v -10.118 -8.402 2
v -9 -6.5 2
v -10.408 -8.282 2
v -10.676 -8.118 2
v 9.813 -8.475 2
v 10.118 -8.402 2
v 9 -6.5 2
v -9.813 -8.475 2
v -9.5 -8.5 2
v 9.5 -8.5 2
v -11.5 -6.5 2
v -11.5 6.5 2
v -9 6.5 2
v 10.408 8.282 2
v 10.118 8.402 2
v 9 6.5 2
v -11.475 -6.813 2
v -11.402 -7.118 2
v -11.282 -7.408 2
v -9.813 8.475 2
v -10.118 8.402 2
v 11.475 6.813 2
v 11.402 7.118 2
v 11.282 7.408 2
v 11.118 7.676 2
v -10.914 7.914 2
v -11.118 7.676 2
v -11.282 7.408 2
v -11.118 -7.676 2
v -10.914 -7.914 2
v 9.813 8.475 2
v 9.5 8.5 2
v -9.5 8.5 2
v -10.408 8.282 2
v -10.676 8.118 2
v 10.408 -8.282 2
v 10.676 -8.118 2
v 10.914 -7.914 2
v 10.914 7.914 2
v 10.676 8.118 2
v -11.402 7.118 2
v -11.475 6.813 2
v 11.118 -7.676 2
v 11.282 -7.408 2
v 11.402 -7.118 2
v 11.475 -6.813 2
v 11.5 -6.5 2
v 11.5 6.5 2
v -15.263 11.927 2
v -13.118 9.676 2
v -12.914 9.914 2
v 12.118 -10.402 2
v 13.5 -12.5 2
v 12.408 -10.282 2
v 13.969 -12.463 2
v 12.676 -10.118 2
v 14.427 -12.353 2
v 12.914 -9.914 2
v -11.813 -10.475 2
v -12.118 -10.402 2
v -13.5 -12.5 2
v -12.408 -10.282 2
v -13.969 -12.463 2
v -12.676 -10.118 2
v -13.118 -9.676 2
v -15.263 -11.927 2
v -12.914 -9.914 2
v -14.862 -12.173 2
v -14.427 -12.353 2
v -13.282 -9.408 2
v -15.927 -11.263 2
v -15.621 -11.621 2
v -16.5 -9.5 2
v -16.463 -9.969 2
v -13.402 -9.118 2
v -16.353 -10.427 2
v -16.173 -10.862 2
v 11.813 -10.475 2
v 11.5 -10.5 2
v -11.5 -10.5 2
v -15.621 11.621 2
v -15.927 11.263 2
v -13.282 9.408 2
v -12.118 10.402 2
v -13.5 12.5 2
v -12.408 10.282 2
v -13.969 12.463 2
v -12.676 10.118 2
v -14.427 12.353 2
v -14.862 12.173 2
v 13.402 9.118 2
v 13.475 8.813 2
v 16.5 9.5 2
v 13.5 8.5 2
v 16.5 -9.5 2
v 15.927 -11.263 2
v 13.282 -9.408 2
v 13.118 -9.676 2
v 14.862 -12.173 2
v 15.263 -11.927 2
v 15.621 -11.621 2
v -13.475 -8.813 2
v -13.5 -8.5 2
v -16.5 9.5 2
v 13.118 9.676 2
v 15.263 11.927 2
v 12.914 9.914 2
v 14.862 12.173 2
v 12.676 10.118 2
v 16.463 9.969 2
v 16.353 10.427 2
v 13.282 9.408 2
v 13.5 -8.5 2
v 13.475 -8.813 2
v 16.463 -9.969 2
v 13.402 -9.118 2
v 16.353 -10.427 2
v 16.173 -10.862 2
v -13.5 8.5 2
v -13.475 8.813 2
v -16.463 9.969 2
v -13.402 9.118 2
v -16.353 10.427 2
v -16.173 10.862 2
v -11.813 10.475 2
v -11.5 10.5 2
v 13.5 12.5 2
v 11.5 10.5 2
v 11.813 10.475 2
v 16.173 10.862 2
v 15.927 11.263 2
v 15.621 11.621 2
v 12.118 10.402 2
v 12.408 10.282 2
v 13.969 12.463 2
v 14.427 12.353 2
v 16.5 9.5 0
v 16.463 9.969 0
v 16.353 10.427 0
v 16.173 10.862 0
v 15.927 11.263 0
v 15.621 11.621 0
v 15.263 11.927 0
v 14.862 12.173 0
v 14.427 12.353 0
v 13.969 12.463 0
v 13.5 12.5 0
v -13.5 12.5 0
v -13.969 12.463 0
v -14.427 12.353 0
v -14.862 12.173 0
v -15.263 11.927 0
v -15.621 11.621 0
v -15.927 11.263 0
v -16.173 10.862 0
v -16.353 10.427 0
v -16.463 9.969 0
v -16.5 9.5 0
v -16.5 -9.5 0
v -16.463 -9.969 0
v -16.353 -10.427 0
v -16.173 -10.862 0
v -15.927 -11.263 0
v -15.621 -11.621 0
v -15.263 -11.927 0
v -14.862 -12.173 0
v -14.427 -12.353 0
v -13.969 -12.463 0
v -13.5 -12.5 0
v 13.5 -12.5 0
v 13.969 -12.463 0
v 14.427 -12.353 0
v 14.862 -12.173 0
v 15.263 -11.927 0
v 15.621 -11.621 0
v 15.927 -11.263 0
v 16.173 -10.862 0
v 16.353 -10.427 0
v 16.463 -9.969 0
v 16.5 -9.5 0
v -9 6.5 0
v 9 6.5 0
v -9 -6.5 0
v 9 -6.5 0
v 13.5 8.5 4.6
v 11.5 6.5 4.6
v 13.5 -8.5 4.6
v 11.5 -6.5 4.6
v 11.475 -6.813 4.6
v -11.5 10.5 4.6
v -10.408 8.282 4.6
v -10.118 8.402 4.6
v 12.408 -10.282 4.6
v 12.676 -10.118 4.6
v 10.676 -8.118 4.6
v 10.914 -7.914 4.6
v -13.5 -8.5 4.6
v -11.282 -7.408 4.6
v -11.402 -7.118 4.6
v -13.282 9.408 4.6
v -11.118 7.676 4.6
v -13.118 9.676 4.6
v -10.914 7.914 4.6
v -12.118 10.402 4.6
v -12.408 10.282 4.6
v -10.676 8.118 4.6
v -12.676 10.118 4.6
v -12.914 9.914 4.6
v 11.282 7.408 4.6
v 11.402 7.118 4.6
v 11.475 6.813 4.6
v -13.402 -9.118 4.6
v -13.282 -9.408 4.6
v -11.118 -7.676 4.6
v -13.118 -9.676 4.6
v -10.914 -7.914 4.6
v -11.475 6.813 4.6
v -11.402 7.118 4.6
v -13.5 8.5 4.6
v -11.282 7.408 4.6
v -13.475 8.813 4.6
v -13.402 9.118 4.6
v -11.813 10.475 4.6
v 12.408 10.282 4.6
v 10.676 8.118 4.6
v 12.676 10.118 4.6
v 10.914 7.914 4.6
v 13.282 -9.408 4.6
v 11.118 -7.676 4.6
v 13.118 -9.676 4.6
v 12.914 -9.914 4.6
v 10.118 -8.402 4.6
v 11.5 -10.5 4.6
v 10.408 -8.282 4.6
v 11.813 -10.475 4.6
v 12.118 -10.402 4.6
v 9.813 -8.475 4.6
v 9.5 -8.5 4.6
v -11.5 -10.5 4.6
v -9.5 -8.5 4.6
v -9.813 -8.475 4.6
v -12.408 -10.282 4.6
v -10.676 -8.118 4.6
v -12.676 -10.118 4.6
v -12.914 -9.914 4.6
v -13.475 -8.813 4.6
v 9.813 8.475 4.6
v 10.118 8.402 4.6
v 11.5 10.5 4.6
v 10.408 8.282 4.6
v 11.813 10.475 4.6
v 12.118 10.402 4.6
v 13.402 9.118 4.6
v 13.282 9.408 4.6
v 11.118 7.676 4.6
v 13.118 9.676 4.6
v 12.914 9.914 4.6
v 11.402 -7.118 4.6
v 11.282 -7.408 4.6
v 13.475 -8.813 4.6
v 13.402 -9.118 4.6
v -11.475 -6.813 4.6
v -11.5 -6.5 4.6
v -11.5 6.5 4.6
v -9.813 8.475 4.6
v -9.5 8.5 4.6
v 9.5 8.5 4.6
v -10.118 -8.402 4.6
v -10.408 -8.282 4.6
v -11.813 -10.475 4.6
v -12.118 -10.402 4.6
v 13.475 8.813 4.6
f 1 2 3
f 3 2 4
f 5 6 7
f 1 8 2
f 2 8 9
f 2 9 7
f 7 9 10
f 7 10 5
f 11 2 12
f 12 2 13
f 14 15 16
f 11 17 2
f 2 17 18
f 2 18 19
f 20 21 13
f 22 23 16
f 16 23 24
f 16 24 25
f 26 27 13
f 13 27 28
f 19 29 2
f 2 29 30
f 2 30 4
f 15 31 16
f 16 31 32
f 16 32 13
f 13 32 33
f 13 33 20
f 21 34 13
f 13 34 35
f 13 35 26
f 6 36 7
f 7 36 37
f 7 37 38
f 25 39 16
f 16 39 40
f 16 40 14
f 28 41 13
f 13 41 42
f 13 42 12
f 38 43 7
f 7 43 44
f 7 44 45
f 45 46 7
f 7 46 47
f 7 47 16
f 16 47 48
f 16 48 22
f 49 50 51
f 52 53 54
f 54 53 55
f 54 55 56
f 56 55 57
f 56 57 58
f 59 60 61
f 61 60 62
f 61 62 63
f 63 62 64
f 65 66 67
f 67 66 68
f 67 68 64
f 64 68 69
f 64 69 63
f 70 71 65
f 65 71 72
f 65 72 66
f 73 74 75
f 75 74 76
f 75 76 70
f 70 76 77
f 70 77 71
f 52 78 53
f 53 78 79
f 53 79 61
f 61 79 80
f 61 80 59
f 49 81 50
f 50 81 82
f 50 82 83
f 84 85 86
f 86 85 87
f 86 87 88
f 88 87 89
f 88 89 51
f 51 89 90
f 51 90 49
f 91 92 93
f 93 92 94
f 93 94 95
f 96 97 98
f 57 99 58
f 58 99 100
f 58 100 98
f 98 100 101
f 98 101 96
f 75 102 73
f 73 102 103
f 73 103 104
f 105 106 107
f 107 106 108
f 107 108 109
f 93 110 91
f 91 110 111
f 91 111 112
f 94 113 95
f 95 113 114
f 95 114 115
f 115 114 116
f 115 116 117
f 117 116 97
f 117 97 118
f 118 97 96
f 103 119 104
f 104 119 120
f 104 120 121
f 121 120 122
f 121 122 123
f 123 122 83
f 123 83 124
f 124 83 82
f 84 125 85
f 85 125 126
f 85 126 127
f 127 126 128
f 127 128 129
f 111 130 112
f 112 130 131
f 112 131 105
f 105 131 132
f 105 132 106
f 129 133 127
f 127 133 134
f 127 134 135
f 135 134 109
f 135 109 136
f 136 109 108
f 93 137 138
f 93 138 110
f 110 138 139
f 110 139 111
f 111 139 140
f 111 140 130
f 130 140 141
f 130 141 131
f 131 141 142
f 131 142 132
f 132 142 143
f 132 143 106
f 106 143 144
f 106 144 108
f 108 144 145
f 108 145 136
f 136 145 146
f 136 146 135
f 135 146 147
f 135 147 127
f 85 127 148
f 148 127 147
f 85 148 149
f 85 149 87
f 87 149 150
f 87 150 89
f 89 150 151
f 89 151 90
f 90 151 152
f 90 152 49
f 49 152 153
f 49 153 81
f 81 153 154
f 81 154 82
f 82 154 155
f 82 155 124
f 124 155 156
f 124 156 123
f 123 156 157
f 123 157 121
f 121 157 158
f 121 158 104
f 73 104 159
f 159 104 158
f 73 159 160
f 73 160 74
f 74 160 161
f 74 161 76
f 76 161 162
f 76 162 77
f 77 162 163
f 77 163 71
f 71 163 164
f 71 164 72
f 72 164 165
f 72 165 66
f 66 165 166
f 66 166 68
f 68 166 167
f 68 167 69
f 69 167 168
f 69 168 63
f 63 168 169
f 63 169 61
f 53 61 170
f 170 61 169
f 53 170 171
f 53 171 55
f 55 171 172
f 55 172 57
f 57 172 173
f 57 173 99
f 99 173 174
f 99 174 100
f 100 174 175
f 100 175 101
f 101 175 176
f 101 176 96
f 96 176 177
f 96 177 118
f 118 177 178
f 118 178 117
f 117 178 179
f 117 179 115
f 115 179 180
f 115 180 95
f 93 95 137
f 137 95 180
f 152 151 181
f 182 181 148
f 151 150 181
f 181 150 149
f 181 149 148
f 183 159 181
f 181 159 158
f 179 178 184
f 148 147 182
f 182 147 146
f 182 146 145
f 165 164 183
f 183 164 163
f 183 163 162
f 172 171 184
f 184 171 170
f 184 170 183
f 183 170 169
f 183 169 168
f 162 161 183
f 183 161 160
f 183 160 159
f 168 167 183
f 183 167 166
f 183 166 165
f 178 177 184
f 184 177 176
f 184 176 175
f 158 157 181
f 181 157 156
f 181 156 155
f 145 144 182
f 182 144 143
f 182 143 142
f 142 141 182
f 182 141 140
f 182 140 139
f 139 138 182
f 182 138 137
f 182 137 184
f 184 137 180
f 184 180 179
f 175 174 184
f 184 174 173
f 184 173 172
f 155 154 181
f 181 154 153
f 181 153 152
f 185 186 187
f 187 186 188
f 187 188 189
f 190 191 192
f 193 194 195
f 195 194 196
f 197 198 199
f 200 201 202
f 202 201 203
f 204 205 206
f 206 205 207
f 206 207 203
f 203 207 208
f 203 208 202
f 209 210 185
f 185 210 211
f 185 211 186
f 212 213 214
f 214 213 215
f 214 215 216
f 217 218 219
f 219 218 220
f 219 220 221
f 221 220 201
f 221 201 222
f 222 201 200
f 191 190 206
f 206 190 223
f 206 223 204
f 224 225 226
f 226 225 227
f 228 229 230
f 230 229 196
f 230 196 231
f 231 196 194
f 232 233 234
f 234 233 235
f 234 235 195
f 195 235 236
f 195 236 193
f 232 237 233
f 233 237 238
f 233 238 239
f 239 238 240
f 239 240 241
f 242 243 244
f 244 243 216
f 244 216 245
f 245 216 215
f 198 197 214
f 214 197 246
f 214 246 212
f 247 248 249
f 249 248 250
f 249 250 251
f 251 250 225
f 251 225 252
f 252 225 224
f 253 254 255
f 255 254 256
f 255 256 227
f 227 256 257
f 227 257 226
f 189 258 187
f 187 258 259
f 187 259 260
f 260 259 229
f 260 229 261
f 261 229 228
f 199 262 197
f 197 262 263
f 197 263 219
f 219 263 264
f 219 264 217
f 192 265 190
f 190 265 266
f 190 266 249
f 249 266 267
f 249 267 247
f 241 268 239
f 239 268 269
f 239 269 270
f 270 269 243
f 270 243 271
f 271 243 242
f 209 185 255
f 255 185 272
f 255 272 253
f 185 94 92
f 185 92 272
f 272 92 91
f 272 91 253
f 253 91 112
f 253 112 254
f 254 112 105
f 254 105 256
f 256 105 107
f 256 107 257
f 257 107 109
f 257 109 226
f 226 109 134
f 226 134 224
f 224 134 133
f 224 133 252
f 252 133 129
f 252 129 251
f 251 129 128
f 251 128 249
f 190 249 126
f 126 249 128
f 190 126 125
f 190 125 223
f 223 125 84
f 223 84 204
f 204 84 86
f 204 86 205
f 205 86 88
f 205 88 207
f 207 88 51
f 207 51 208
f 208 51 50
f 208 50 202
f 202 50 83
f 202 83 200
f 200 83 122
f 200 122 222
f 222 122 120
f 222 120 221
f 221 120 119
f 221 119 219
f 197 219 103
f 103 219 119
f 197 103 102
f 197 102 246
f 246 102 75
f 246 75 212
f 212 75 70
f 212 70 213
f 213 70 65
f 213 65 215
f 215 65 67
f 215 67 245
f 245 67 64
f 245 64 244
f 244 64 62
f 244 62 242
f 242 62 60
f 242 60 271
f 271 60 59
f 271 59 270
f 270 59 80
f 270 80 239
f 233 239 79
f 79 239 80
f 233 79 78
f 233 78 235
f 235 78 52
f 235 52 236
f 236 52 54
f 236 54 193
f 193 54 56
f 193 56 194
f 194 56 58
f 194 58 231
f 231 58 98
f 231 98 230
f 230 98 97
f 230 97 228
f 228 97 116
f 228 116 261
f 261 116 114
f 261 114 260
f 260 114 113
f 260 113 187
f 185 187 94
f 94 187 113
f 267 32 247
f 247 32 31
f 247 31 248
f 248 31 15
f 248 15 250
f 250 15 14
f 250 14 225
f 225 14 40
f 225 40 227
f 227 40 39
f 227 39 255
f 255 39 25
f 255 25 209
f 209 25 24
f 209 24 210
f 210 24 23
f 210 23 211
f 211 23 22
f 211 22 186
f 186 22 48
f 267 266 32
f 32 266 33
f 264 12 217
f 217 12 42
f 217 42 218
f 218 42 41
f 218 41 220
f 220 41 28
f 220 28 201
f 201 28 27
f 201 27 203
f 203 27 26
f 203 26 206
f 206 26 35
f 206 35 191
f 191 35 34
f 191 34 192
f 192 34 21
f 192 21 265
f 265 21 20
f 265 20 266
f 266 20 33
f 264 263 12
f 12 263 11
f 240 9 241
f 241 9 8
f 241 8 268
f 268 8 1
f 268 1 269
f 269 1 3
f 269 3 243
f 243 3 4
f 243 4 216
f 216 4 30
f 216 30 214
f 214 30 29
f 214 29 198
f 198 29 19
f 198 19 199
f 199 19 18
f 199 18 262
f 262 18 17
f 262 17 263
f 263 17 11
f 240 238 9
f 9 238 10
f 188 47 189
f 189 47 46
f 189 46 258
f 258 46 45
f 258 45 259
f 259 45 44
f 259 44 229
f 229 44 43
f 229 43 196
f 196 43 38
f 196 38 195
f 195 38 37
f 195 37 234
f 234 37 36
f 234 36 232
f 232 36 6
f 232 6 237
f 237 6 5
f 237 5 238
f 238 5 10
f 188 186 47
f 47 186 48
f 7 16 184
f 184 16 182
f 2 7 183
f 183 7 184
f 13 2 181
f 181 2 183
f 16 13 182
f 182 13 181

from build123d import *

# Parameters (mm, degrees)
Y_KSEKLIK_EKSTR_ZYON1_DEPTH = 2
Y_KSEKLIK_EKSTR_ZYON2_DEPTH = 2.6
IZIM3_W                     = 18
IZIM3_H                     = 13
KES_EKSTR_ZYON1_DEPTH       = 12


with BuildPart() as part:
    # Çizim1 → Yükseklik-Ekstrüzyon1 (new body)
    with BuildSketch(Plane.XY):
        with BuildLine():
            Line((-13.5, 12.5), (13.5, 12.5))
            ThreePointArc((13.5, 12.5), (15.621320344, 11.621320344), (16.5, 9.5))
            Line((16.5, 9.5), (16.5, -9.5))
            ThreePointArc((16.5, -9.5), (15.621320344, -11.621320344), (13.5, -12.5))
            Line((13.5, -12.5), (-13.5, -12.5))
            ThreePointArc((-13.5, -12.5), (-15.621320344, -11.621320344), (-16.5, -9.5))
            Line((-16.5, -9.5), (-16.5, 9.5))
            ThreePointArc((-16.5, 9.5), (-15.621320344, 11.621320344), (-13.5, 12.5))
        make_face()
    extrude(amount=Y_KSEKLIK_EKSTR_ZYON1_DEPTH)

    # Çizim2 → Yükseklik-Ekstrüzyon2 (add)
    with BuildSketch(Plane.XY.offset(2)):
        with BuildLine():
            Line((-11.5, 10.5), (11.5, 10.5))
            ThreePointArc((11.5, 10.5), (12.914213562, 9.914213562), (13.5, 8.5))
            Line((13.5, 8.5), (13.5, -8.5))
            ThreePointArc((13.5, -8.5), (12.914213562, -9.914213562), (11.5, -10.5))
            Line((11.5, -10.5), (-11.5, -10.5))
            ThreePointArc((-11.5, -10.5), (-12.914213562, -9.914213562), (-13.5, -8.5))
            Line((-13.5, -8.5), (-13.5, 8.5))
            ThreePointArc((-13.5, 8.5), (-12.914213562, 9.914213562), (-11.5, 10.5))
        make_face()
        with BuildLine():
            Line((-9.5, 8.5), (9.5, 8.5))
            ThreePointArc((9.5, 8.5), (10.914213562, 7.914213562), (11.5, 6.5))
            Line((11.5, 6.5), (11.5, -6.5))
            ThreePointArc((11.5, -6.5), (10.914213562, -7.914213562), (9.5, -8.5))
            Line((9.5, -8.5), (-9.5, -8.5))
            ThreePointArc((-9.5, -8.5), (-10.914213562, -7.914213562), (-11.5, -6.5))
            Line((-11.5, -6.5), (-11.5, 6.5))
            ThreePointArc((-11.5, 6.5), (-10.914213562, 7.914213562), (-9.5, 8.5))
        make_face(mode=Mode.SUBTRACT)
    extrude(amount=Y_KSEKLIK_EKSTR_ZYON2_DEPTH)

    # Çizim3 → Kes-Ekstrüzyon1 (cut)
    with BuildSketch(Plane.XY.offset(2)):
        Rectangle(IZIM3_W, IZIM3_H)
    extrude(amount=-KES_EKSTR_ZYON1_DEPTH, mode=Mode.SUBTRACT)


solid = part.part
